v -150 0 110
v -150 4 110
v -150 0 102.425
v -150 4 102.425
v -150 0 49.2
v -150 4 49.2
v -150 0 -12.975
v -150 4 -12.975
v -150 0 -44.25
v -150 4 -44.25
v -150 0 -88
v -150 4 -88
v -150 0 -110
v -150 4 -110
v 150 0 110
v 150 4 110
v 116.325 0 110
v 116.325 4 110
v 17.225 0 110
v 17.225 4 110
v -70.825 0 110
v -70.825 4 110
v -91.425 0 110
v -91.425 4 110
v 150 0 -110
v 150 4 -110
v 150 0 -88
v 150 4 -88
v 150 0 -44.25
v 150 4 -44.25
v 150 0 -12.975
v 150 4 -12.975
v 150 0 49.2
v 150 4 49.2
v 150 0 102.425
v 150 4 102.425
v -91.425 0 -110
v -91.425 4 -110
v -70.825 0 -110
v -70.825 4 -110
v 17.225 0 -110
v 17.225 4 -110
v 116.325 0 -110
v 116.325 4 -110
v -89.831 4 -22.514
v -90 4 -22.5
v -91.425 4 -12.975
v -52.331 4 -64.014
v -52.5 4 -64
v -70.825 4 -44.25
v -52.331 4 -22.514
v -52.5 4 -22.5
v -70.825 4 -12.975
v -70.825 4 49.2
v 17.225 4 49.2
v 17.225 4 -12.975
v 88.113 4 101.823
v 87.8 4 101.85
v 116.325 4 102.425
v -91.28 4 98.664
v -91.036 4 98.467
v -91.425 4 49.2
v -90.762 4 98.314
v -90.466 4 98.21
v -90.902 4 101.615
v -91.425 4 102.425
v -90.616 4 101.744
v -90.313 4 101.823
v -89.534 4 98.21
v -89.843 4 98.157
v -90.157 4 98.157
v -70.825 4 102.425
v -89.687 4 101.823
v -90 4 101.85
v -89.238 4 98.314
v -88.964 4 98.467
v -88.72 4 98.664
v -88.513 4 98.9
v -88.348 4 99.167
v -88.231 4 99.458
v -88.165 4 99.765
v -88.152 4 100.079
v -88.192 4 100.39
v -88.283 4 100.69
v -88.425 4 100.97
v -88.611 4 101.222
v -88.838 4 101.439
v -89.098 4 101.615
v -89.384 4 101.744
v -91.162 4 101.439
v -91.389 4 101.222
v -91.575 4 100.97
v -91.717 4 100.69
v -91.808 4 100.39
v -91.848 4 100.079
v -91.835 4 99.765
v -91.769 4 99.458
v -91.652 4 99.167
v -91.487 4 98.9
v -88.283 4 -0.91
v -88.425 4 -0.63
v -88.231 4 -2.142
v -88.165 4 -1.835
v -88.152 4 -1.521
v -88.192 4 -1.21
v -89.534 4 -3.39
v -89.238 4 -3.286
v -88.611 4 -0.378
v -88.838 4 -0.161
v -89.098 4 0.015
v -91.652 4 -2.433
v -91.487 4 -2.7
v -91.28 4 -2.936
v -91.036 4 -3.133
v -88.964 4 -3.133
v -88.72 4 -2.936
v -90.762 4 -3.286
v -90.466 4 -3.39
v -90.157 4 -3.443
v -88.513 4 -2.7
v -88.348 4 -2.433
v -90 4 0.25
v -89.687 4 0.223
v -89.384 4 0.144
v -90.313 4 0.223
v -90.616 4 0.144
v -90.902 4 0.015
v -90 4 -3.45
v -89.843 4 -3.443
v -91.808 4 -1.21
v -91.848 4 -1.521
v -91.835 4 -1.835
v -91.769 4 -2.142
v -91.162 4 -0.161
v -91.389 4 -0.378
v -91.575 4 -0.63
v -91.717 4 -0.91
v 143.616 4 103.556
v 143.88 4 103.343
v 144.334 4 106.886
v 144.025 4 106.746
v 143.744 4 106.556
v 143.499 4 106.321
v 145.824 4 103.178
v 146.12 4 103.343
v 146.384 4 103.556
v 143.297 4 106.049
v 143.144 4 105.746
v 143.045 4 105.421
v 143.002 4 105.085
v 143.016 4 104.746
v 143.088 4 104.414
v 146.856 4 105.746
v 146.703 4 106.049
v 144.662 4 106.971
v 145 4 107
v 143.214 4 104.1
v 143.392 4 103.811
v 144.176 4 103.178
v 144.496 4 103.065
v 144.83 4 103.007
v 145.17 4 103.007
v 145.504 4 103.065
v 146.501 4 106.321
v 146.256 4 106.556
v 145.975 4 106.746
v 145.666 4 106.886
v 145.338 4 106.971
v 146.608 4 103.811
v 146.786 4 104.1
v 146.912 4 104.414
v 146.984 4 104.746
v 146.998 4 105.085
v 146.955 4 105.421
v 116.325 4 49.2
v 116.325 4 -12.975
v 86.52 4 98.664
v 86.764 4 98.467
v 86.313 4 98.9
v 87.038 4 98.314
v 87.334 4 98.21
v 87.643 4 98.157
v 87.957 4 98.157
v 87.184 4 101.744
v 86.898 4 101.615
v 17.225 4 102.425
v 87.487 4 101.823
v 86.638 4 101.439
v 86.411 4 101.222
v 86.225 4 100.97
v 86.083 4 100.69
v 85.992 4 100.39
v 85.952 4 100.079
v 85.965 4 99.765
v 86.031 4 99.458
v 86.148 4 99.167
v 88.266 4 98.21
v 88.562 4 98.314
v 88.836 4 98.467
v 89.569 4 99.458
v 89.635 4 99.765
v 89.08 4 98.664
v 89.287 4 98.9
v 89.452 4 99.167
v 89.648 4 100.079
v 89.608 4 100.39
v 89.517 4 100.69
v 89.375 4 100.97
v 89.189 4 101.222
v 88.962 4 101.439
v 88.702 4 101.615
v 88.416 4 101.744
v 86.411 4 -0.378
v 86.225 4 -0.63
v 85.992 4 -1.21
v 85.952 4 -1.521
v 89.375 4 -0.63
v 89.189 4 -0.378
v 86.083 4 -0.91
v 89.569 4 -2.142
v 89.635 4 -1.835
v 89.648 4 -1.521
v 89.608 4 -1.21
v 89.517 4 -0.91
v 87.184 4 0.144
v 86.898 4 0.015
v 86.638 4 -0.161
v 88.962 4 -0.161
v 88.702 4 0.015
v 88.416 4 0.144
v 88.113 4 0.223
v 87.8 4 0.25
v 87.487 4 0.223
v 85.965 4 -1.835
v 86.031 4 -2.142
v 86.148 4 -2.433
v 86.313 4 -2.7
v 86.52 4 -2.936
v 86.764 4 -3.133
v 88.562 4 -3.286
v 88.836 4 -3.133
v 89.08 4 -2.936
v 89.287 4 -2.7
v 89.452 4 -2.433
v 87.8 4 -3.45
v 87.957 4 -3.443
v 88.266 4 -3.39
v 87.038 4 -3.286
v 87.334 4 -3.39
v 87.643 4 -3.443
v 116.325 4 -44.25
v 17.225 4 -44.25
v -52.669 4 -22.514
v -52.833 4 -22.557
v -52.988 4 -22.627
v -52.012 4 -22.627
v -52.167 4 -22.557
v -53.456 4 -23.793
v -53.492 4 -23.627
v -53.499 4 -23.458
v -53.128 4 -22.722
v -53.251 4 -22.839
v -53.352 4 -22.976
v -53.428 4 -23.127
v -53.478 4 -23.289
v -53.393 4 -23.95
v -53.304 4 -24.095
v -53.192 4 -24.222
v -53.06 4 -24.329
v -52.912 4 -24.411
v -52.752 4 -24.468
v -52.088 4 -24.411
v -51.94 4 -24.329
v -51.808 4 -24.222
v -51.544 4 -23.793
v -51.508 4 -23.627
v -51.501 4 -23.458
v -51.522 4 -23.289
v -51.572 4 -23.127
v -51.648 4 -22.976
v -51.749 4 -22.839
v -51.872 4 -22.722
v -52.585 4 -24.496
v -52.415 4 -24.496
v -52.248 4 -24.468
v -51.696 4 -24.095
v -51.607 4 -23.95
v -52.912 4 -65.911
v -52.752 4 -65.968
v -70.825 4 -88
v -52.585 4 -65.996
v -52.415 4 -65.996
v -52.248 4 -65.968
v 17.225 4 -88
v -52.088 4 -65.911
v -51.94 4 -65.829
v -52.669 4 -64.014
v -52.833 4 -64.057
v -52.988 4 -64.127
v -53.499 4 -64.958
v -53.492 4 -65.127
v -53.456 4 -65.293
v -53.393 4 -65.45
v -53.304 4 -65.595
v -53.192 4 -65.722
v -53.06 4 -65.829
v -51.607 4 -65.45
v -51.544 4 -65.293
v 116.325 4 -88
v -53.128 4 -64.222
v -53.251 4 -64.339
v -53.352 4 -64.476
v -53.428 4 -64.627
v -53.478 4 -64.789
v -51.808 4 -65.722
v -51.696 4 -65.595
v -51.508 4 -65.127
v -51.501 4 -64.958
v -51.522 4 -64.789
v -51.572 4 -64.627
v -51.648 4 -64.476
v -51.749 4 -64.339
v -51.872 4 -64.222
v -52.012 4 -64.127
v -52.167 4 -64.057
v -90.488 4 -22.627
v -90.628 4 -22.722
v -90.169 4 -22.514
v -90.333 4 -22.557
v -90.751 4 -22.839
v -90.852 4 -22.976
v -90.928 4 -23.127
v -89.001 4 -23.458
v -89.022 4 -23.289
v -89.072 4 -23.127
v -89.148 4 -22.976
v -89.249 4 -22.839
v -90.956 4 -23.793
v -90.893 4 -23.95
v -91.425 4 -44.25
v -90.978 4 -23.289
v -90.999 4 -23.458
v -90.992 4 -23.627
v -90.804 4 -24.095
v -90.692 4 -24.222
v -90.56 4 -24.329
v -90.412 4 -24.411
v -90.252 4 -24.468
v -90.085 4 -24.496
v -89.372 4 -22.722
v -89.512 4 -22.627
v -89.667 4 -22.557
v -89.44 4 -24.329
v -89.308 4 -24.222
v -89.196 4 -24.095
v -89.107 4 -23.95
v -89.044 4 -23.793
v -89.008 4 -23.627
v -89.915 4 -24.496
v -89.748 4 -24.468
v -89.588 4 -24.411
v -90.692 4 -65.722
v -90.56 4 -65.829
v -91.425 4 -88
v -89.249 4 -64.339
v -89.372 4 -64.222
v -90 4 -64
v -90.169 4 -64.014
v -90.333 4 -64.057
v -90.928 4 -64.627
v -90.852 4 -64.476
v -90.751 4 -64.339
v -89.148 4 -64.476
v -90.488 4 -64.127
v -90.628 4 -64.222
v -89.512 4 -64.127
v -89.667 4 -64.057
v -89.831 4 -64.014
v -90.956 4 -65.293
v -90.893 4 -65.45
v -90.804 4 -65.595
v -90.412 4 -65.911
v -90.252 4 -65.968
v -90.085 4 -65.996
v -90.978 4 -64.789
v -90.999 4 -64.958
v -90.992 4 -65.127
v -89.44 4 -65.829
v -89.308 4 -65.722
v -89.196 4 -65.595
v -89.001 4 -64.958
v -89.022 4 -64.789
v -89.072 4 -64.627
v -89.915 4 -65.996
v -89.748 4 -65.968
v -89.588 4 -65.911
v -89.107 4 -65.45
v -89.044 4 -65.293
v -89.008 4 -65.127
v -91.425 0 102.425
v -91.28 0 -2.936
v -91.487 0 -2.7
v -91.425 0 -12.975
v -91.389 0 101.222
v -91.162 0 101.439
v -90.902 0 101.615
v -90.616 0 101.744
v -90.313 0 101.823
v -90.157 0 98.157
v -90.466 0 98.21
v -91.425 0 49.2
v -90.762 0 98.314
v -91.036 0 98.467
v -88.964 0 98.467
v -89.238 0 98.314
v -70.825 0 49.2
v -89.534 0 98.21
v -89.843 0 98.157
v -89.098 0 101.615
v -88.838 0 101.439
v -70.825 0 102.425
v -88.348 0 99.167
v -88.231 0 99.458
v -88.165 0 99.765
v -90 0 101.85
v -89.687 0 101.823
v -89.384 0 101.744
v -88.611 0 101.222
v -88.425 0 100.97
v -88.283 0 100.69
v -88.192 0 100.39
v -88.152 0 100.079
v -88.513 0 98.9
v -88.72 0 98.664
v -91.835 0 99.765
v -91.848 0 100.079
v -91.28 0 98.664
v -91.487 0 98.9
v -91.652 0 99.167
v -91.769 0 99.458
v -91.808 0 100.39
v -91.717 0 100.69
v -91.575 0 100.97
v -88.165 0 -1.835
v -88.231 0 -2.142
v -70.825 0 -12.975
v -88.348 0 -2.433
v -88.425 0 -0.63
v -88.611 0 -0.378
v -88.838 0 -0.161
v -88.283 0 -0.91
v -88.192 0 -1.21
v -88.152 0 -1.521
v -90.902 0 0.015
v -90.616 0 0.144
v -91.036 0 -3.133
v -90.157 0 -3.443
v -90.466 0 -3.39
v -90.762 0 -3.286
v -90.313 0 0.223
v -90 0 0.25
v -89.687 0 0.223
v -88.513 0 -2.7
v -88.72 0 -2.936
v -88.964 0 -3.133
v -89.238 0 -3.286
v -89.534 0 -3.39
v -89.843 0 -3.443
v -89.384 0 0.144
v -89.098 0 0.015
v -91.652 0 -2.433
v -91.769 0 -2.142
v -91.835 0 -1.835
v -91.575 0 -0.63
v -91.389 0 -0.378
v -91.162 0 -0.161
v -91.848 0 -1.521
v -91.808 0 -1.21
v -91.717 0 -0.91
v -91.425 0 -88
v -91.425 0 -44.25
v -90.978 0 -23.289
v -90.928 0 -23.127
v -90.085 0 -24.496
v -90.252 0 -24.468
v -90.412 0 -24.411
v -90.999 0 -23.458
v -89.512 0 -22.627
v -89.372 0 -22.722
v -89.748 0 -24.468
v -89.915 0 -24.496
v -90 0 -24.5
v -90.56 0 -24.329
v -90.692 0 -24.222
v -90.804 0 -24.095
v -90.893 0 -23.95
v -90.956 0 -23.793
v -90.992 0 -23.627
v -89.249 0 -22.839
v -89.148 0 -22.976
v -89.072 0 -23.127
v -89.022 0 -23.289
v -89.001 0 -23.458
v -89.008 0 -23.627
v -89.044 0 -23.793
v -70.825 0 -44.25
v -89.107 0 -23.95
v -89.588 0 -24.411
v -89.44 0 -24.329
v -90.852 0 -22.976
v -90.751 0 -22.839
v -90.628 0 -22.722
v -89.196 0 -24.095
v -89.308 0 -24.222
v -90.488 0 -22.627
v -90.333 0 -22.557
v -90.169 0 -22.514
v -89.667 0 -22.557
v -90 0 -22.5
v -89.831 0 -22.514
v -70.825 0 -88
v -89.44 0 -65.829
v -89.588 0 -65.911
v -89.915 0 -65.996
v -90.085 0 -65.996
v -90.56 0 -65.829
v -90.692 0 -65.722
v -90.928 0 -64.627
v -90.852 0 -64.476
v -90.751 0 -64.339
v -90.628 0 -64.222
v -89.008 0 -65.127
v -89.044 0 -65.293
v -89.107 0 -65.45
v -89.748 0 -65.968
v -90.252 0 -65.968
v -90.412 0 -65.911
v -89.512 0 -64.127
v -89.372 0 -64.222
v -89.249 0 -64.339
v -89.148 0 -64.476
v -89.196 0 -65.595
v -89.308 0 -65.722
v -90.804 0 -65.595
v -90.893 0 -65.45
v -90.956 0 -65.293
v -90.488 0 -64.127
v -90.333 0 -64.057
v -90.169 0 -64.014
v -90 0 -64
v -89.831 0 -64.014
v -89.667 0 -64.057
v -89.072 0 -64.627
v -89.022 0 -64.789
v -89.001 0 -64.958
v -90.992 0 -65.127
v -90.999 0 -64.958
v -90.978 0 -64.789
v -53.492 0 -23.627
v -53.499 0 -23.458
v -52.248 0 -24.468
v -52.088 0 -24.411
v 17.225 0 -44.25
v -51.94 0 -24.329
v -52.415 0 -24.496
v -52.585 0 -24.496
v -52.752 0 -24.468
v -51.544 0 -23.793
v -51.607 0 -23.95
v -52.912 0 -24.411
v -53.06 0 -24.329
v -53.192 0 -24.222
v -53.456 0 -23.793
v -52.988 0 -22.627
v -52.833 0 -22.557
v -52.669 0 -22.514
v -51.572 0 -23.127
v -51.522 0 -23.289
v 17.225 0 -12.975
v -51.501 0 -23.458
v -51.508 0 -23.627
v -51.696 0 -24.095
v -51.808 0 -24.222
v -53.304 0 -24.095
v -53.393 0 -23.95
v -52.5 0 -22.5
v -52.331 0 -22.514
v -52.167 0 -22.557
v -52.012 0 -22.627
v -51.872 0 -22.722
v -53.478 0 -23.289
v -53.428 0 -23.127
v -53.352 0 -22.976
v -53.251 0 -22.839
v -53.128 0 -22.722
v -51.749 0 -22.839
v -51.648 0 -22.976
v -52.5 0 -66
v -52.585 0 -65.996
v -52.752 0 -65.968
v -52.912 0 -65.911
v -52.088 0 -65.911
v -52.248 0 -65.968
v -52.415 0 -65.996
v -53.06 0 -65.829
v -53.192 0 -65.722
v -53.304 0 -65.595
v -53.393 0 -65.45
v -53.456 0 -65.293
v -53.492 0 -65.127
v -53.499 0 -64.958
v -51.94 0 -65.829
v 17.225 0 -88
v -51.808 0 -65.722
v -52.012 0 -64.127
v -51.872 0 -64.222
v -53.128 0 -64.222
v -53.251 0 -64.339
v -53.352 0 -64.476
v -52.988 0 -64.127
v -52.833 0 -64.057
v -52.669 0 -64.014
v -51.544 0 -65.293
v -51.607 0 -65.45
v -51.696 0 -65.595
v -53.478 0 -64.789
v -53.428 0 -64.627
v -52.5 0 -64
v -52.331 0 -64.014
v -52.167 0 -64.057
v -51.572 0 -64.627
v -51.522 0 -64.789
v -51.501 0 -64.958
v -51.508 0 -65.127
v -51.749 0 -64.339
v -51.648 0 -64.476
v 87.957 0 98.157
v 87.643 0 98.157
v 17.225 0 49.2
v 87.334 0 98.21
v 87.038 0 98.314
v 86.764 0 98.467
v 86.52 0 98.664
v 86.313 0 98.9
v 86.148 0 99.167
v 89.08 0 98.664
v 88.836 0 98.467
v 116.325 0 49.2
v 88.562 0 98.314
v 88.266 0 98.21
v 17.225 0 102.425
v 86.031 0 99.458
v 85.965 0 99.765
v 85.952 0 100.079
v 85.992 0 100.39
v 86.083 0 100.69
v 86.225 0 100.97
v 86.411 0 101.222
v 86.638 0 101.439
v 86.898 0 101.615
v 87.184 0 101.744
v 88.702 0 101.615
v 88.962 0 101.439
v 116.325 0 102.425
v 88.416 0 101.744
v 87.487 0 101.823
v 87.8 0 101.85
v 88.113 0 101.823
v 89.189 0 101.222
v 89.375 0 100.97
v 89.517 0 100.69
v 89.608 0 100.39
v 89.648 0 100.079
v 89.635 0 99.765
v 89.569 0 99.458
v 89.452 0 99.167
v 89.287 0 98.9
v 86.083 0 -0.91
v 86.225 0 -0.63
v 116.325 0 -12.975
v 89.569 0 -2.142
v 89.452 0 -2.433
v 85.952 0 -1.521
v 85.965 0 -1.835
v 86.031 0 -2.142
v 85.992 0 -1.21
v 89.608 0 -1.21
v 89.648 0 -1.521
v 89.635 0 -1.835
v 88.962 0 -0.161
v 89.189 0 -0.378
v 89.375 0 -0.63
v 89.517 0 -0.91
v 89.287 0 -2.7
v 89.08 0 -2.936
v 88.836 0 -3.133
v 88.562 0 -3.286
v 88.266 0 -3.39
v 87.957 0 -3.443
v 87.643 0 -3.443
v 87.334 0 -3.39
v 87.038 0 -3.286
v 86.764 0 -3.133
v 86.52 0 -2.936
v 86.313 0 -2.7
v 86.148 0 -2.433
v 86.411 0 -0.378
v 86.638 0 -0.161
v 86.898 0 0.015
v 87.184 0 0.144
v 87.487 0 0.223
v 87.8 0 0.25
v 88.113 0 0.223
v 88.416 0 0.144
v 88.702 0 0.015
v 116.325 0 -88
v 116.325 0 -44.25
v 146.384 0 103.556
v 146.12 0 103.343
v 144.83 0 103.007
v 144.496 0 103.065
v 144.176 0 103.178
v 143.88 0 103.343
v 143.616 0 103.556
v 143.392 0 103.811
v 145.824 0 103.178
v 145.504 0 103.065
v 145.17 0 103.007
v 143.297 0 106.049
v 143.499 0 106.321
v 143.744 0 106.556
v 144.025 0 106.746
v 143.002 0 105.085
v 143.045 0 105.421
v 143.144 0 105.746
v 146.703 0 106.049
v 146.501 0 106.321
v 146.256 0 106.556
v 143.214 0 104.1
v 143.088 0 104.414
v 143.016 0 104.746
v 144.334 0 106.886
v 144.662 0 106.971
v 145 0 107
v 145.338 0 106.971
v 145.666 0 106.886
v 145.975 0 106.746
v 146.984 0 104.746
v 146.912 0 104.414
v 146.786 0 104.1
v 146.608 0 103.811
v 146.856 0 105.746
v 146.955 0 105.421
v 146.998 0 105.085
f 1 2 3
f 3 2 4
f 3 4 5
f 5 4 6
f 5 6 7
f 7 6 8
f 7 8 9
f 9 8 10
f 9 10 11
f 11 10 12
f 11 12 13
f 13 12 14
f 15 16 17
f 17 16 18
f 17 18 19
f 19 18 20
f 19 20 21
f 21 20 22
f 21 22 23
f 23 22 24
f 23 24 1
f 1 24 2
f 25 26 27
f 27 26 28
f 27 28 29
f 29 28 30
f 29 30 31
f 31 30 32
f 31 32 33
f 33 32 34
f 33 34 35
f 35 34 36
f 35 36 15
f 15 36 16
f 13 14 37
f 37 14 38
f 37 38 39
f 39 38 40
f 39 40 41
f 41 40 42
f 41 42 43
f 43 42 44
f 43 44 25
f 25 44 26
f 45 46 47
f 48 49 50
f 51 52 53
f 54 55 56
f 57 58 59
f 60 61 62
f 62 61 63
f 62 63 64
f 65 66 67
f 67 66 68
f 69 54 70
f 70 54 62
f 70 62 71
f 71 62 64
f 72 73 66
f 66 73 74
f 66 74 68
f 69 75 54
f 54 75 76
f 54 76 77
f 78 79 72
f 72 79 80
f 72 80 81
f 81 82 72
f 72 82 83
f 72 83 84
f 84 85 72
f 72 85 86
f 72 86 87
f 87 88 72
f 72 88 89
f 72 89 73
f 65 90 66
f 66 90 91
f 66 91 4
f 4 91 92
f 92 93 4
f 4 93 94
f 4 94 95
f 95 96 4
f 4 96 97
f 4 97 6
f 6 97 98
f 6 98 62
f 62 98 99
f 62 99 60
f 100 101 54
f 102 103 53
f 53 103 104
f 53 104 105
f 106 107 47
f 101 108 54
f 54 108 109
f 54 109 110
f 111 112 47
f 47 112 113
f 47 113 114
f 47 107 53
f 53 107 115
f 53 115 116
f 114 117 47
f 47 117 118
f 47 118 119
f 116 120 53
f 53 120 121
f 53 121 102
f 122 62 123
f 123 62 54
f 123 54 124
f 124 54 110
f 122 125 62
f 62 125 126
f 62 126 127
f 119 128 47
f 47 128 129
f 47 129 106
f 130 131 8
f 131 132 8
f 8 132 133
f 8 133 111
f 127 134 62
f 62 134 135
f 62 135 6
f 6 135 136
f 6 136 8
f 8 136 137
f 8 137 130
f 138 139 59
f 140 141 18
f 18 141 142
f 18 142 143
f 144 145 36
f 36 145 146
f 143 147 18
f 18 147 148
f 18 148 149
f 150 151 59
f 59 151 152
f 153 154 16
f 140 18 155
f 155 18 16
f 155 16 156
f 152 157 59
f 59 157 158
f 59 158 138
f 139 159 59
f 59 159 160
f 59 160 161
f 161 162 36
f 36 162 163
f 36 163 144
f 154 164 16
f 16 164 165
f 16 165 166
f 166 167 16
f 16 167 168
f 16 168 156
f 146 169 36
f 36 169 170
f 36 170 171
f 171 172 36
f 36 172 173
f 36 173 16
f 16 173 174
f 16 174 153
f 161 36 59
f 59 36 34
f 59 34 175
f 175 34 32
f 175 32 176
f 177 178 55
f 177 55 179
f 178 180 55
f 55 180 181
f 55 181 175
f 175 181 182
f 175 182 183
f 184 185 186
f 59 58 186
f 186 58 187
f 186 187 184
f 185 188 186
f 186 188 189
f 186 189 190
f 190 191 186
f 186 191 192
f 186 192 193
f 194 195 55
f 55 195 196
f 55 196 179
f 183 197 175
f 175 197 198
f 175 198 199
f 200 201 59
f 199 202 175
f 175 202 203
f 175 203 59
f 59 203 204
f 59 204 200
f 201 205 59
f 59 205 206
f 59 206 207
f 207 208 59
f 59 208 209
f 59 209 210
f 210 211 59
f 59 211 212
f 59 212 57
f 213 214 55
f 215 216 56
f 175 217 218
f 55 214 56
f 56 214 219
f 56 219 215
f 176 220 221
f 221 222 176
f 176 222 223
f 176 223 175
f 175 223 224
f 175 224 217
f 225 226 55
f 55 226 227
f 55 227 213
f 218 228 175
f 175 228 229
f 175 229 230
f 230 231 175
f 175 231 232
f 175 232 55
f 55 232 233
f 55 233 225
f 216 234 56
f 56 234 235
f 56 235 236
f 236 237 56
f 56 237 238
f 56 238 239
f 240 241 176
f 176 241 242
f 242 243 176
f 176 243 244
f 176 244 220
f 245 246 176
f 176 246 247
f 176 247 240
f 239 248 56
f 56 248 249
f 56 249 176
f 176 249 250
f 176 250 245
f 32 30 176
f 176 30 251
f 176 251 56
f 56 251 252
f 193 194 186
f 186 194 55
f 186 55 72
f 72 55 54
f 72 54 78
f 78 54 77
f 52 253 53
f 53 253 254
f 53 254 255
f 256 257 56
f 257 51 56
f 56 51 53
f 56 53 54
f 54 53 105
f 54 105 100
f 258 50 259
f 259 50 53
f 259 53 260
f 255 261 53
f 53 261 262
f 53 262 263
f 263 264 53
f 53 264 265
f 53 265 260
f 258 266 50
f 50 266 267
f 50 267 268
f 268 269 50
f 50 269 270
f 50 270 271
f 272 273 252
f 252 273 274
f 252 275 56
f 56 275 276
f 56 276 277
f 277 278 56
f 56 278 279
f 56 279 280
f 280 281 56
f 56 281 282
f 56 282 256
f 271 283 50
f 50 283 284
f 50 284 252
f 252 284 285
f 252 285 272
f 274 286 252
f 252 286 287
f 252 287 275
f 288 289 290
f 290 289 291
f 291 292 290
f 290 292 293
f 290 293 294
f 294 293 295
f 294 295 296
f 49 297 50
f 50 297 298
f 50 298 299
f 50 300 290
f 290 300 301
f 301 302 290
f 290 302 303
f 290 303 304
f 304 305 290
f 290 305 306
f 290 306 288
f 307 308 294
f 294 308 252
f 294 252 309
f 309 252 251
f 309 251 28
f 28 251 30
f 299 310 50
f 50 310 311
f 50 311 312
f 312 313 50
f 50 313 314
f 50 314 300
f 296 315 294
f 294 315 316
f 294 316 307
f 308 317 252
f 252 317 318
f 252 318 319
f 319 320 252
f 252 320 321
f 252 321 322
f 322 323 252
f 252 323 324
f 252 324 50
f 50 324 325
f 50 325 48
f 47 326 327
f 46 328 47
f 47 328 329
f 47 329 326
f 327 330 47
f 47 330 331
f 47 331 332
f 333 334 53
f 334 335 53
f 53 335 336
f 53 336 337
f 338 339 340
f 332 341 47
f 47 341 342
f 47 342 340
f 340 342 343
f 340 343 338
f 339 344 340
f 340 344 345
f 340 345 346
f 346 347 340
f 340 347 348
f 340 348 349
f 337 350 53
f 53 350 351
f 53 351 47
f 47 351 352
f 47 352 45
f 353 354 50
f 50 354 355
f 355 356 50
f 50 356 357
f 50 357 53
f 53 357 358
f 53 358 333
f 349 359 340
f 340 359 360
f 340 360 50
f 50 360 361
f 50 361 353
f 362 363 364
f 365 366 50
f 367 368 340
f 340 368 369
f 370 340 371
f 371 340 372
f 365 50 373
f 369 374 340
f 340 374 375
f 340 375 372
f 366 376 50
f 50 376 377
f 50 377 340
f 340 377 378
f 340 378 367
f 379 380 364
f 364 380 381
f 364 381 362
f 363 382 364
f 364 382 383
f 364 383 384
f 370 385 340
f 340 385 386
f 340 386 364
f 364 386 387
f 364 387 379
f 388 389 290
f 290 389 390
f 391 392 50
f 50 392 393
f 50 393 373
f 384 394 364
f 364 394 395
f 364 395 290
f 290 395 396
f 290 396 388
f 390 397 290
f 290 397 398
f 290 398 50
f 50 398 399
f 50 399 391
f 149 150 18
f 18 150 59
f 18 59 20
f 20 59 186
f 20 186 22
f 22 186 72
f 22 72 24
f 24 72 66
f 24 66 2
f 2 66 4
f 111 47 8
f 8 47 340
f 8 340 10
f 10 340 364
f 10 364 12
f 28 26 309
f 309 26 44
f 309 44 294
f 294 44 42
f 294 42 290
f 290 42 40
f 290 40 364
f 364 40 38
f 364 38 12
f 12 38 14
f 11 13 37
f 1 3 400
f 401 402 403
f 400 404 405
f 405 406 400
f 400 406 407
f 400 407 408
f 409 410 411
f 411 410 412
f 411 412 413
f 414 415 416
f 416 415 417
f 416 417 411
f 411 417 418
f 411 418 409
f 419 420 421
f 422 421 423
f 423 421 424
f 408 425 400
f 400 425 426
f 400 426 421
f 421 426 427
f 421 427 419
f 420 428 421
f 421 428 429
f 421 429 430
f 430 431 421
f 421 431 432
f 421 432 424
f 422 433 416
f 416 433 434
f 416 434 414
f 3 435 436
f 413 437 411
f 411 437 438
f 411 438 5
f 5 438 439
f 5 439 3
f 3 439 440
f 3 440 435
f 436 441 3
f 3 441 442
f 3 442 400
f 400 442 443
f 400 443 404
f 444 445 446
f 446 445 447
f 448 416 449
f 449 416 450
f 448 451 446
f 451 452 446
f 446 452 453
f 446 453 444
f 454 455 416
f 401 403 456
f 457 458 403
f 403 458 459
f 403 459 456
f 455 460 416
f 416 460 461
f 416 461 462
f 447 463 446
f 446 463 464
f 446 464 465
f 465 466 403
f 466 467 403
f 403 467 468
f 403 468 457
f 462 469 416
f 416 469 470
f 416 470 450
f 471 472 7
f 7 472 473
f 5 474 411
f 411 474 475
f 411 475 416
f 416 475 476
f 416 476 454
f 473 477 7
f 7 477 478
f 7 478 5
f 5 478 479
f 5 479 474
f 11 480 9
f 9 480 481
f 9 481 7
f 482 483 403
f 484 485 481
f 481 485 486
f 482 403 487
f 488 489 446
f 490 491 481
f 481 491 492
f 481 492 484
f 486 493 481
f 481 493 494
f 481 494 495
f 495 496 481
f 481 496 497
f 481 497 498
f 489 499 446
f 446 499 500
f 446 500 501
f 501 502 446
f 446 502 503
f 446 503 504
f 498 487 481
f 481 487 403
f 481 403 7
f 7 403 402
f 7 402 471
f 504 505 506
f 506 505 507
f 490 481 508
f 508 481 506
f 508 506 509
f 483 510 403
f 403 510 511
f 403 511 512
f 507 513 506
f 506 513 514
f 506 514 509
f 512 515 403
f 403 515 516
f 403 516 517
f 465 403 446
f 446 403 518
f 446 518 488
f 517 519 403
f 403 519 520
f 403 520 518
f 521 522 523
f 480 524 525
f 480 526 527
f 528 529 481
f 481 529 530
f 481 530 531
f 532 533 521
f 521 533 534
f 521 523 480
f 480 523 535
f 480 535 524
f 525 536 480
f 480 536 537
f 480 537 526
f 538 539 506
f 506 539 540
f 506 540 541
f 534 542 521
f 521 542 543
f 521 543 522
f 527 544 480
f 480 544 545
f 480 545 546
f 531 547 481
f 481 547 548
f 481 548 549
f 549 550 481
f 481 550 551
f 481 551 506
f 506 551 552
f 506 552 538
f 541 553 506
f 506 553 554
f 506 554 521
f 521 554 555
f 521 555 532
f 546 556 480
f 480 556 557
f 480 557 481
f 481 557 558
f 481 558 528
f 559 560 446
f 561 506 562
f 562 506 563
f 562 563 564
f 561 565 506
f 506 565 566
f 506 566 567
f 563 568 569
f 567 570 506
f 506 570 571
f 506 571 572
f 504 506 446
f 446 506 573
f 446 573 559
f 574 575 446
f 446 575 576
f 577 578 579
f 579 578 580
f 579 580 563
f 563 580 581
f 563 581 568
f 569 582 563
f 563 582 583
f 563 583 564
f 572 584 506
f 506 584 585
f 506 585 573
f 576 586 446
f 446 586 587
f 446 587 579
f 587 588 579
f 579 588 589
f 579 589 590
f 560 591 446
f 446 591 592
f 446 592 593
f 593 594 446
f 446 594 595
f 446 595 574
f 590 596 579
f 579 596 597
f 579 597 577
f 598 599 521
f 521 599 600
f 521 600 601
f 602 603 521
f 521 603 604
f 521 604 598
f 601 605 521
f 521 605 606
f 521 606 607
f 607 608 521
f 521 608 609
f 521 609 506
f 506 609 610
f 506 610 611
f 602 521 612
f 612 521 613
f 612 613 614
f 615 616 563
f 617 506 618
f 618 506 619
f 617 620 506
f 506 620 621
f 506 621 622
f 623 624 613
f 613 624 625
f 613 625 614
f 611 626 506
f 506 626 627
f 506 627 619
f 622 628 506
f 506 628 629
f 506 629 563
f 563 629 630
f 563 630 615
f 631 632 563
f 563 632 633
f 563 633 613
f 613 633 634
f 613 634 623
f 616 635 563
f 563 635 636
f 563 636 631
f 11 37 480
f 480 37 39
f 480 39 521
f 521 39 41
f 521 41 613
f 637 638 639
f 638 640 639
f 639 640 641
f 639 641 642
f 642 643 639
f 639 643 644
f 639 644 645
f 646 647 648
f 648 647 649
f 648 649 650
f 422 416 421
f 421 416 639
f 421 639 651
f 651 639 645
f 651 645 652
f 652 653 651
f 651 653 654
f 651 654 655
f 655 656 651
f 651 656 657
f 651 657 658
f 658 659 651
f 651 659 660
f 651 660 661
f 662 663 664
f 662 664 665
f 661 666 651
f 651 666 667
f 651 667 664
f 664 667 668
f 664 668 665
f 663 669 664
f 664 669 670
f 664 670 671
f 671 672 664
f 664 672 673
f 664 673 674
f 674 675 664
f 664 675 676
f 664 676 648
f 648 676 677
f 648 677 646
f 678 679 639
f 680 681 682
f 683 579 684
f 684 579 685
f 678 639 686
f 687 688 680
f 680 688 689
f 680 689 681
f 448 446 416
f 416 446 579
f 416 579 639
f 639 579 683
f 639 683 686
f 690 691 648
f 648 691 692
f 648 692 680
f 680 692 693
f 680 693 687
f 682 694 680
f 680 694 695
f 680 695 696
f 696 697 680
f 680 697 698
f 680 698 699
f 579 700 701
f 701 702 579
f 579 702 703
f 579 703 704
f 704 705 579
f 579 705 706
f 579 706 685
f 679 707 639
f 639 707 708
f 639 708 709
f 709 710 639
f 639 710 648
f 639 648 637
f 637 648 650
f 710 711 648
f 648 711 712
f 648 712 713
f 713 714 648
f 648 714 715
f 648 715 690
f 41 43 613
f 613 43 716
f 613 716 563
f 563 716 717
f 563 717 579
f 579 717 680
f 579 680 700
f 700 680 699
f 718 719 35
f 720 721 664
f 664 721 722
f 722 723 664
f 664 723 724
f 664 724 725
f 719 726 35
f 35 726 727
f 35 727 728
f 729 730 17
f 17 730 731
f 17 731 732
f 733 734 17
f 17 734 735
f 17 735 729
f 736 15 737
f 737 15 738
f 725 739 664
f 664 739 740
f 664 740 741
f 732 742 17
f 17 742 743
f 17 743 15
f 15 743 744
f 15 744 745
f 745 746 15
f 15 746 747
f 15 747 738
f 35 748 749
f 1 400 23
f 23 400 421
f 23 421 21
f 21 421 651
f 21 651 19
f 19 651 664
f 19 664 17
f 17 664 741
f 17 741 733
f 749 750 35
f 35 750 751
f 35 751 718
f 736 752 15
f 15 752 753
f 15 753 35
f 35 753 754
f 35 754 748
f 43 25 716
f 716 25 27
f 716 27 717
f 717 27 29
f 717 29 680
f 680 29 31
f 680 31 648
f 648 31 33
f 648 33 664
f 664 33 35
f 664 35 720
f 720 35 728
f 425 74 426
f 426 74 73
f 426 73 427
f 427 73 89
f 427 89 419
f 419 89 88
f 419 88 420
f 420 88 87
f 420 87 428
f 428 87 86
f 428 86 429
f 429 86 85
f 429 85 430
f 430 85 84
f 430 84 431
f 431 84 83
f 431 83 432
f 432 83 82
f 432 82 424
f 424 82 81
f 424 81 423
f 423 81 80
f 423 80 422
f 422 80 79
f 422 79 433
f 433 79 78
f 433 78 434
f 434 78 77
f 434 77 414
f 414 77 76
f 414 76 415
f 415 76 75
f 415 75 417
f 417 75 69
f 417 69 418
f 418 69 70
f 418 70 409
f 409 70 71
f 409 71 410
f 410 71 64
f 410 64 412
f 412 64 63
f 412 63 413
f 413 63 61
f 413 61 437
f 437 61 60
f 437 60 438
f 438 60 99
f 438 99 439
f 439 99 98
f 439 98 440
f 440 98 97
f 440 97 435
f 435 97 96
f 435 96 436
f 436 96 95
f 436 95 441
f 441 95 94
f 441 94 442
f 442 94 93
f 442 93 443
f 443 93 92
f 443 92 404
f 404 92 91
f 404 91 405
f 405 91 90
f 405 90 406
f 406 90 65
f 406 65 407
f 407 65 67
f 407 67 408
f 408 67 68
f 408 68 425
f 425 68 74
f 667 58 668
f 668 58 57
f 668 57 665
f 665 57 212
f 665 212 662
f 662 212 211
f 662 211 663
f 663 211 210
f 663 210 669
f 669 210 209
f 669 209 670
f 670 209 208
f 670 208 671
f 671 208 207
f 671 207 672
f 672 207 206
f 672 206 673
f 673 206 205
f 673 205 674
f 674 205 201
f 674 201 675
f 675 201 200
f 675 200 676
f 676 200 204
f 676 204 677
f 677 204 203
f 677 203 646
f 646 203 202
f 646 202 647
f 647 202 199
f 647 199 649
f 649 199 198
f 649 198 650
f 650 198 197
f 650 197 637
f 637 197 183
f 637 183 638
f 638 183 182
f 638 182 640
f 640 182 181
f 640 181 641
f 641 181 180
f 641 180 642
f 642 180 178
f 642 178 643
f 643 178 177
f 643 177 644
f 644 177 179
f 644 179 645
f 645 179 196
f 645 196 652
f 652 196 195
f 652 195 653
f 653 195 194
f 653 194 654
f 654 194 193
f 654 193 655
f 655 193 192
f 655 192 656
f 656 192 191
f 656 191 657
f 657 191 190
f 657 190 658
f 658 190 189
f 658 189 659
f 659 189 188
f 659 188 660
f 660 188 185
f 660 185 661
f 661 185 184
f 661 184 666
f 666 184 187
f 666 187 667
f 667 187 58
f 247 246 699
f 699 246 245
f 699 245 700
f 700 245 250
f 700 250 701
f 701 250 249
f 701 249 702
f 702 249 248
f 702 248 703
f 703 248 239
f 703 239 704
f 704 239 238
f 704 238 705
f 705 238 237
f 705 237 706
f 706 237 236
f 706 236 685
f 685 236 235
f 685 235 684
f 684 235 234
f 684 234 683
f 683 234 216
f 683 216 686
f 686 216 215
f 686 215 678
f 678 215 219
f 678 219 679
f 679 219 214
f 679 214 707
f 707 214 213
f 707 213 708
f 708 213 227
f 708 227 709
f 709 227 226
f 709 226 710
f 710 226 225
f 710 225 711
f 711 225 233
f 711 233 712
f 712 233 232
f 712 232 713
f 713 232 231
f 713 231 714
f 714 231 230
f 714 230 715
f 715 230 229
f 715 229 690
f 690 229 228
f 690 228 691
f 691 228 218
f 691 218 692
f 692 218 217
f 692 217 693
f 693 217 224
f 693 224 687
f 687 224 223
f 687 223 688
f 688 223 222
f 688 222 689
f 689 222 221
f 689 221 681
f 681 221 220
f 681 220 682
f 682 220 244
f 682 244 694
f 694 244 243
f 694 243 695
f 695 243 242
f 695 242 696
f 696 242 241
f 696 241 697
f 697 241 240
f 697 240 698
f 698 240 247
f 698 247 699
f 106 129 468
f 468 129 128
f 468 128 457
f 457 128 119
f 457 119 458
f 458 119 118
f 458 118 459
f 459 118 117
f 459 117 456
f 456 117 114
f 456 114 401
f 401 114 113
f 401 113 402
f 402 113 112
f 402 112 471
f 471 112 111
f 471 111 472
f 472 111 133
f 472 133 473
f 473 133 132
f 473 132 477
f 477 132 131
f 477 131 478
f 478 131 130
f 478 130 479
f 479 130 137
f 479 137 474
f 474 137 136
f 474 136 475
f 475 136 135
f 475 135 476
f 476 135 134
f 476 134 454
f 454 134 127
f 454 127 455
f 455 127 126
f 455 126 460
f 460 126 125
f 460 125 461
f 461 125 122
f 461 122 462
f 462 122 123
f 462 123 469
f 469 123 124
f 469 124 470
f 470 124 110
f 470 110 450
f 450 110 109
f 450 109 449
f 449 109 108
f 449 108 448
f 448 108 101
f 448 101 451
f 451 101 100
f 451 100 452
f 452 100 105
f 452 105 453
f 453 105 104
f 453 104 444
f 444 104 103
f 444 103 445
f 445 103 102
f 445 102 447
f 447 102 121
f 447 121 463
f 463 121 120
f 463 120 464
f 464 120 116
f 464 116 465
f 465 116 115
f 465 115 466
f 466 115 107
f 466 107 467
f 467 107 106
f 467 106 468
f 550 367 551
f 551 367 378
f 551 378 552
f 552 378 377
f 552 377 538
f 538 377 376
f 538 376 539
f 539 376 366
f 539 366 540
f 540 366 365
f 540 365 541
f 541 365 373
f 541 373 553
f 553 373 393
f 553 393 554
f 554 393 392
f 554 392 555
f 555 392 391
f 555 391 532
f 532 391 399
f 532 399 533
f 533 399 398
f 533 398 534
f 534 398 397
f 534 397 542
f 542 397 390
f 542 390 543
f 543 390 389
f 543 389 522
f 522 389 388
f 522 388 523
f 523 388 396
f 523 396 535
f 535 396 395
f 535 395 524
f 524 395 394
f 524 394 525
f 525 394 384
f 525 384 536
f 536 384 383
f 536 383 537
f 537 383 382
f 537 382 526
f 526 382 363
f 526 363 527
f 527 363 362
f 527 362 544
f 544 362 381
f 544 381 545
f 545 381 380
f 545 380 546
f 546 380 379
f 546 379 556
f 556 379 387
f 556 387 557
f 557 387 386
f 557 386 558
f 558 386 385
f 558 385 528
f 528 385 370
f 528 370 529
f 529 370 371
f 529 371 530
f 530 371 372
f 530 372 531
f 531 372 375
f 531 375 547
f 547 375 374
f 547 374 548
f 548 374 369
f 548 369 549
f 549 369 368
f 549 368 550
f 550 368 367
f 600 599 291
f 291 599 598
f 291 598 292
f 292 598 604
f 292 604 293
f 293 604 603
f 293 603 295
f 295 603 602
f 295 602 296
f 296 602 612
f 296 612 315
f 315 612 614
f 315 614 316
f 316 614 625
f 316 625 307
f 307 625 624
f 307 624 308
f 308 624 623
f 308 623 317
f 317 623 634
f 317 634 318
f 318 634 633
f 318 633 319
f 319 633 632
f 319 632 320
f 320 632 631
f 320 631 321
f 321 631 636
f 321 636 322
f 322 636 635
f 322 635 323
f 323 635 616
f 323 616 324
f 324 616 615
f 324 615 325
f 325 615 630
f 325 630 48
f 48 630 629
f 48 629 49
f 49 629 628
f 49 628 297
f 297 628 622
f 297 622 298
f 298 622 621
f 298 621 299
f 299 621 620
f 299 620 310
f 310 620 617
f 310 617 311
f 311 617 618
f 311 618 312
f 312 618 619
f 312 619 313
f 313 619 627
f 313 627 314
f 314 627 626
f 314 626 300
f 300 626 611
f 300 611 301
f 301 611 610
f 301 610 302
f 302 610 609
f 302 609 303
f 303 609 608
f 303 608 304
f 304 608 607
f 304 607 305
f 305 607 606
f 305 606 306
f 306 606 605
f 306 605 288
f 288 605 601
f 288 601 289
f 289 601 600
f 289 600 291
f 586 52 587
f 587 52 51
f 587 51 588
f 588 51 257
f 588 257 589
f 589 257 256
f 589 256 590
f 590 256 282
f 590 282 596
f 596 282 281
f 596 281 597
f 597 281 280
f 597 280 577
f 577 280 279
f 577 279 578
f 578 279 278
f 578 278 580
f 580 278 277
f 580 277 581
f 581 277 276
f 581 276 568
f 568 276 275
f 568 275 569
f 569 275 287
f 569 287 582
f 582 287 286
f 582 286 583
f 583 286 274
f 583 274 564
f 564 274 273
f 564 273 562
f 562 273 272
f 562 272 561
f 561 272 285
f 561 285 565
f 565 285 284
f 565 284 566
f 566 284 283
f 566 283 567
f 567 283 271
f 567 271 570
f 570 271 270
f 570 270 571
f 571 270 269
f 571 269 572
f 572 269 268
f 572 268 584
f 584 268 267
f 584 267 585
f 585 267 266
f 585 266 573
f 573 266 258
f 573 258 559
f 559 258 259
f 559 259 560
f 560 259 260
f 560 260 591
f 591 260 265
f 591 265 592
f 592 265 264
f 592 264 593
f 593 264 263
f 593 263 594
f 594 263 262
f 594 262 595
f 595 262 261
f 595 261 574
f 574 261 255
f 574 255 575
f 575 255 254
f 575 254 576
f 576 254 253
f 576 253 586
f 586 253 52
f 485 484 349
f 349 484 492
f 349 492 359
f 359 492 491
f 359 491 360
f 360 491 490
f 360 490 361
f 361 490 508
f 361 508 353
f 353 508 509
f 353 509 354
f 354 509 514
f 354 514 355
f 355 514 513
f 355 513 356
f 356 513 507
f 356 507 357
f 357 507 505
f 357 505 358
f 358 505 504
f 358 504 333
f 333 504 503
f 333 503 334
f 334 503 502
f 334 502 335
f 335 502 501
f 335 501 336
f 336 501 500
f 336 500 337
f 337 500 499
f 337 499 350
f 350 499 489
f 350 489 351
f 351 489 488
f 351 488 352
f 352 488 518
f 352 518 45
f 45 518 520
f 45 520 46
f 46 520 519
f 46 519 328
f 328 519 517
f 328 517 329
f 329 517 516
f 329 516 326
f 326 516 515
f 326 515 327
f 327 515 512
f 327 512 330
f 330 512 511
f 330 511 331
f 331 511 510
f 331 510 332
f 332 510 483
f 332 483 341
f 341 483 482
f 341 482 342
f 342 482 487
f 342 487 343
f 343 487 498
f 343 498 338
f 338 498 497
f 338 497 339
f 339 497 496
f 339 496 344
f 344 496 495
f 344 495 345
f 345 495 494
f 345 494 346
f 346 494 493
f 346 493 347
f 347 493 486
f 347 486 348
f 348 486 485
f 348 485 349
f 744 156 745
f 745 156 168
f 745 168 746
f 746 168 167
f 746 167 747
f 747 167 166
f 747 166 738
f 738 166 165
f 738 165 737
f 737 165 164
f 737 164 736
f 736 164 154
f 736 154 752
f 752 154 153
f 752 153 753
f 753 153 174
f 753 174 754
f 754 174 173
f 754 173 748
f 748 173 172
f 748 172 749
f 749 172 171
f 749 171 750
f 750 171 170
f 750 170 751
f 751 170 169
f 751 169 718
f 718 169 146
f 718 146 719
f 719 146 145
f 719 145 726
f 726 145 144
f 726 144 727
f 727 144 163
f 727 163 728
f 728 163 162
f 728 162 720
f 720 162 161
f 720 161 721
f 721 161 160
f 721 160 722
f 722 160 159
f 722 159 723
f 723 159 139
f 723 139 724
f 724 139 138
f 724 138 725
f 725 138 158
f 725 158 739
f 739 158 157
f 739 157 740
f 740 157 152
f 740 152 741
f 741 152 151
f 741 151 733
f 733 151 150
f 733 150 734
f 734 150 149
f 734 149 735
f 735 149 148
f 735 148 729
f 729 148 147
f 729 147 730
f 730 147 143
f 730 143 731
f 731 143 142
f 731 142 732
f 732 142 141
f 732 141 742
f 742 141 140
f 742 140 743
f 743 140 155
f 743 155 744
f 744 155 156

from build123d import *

# Parameters (mm, degrees)
SKETCH1_W               = 300
SKETCH1_H               = 220
BOSS_EXTRUDE1_DEPTH     = 4
CUT_EXTRUDE1_DEPTH      = 187.053755673
CUT_EXTRUDE1_DEPTH_BACK = 187.053755673
SKETCH2_R               = 1.85
CUT_EXTRUDE2_DEPTH      = 187.053755673
CUT_EXTRUDE2_DEPTH_BACK = 187.053755673
SKETCH3_R               = 1
SKETCH4_R               = 2
CUT_EXTRUDE3_DEPTH      = 187.053755673


with BuildPart() as part:
    # Sketch1 → Boss-Extrude1 (new body)
    with BuildSketch(Plane(origin=(0, 0, 0), x_dir=(1, 0, 0), z_dir=(0, 1, 0))):
        Rectangle(SKETCH1_W, SKETCH1_H)
    extrude(amount=BOSS_EXTRUDE1_DEPTH)

    # Sketch2 → Cut-Extrude1 (cut, two sides: drawn at the far end of the back side and taken through both)
    with BuildSketch(Plane(origin=(0, 0, 0), x_dir=(1, 0, 0), z_dir=(0, 1, 0)).offset(-CUT_EXTRUDE1_DEPTH_BACK)):
        with Locations(Location((-90, -100, 0), (0, 0, 270))):
            Circle(SKETCH2_R)
        with Locations(Location((87.8, -100, 0), (0, 0, 270))):
            Circle(SKETCH2_R)
        with Locations(Location((87.8, 1.6, 0), (0, 0, 270))):
            Circle(SKETCH2_R)
        with Locations(Location((-90, 1.6, 0), (0, 0, 270))):
            Circle(SKETCH2_R)
    extrude(amount=CUT_EXTRUDE1_DEPTH + CUT_EXTRUDE1_DEPTH_BACK, mode=Mode.SUBTRACT)

    # Sketch3 → Cut-Extrude2 (cut, two sides: drawn at the far end of the back side and taken through both)
    with BuildSketch(Plane(origin=(0, 4, 0), x_dir=(1, 0, 0), z_dir=(0, 1, 0)).offset(-CUT_EXTRUDE2_DEPTH_BACK)):
        with Locations(Location((-90, 65, 0), (0, 0, 270))):
            Circle(SKETCH3_R)
        with Locations(Location((-52.5, 65, 0), (0, 0, 270))):
            Circle(SKETCH3_R)
        with Locations(Location((-52.5, 23.5, 0), (0, 0, 270))):
            Circle(SKETCH3_R)
        with Locations(Location((-90, 23.5, 0), (0, 0, 270))):
            Circle(SKETCH3_R)
    extrude(amount=CUT_EXTRUDE2_DEPTH + CUT_EXTRUDE2_DEPTH_BACK, mode=Mode.SUBTRACT)

    # Sketch4 → Cut-Extrude3 (cut, through all)
    with BuildSketch(Plane(origin=(0, 4, 0), x_dir=(1, 0, 0), z_dir=(0, 1, 0))):
        with Locations(Location((145, -105, 0), (0, 0, 270))):
            Circle(SKETCH4_R)
    extrude(amount=-CUT_EXTRUDE3_DEPTH, mode=Mode.SUBTRACT)


solid = part.part
